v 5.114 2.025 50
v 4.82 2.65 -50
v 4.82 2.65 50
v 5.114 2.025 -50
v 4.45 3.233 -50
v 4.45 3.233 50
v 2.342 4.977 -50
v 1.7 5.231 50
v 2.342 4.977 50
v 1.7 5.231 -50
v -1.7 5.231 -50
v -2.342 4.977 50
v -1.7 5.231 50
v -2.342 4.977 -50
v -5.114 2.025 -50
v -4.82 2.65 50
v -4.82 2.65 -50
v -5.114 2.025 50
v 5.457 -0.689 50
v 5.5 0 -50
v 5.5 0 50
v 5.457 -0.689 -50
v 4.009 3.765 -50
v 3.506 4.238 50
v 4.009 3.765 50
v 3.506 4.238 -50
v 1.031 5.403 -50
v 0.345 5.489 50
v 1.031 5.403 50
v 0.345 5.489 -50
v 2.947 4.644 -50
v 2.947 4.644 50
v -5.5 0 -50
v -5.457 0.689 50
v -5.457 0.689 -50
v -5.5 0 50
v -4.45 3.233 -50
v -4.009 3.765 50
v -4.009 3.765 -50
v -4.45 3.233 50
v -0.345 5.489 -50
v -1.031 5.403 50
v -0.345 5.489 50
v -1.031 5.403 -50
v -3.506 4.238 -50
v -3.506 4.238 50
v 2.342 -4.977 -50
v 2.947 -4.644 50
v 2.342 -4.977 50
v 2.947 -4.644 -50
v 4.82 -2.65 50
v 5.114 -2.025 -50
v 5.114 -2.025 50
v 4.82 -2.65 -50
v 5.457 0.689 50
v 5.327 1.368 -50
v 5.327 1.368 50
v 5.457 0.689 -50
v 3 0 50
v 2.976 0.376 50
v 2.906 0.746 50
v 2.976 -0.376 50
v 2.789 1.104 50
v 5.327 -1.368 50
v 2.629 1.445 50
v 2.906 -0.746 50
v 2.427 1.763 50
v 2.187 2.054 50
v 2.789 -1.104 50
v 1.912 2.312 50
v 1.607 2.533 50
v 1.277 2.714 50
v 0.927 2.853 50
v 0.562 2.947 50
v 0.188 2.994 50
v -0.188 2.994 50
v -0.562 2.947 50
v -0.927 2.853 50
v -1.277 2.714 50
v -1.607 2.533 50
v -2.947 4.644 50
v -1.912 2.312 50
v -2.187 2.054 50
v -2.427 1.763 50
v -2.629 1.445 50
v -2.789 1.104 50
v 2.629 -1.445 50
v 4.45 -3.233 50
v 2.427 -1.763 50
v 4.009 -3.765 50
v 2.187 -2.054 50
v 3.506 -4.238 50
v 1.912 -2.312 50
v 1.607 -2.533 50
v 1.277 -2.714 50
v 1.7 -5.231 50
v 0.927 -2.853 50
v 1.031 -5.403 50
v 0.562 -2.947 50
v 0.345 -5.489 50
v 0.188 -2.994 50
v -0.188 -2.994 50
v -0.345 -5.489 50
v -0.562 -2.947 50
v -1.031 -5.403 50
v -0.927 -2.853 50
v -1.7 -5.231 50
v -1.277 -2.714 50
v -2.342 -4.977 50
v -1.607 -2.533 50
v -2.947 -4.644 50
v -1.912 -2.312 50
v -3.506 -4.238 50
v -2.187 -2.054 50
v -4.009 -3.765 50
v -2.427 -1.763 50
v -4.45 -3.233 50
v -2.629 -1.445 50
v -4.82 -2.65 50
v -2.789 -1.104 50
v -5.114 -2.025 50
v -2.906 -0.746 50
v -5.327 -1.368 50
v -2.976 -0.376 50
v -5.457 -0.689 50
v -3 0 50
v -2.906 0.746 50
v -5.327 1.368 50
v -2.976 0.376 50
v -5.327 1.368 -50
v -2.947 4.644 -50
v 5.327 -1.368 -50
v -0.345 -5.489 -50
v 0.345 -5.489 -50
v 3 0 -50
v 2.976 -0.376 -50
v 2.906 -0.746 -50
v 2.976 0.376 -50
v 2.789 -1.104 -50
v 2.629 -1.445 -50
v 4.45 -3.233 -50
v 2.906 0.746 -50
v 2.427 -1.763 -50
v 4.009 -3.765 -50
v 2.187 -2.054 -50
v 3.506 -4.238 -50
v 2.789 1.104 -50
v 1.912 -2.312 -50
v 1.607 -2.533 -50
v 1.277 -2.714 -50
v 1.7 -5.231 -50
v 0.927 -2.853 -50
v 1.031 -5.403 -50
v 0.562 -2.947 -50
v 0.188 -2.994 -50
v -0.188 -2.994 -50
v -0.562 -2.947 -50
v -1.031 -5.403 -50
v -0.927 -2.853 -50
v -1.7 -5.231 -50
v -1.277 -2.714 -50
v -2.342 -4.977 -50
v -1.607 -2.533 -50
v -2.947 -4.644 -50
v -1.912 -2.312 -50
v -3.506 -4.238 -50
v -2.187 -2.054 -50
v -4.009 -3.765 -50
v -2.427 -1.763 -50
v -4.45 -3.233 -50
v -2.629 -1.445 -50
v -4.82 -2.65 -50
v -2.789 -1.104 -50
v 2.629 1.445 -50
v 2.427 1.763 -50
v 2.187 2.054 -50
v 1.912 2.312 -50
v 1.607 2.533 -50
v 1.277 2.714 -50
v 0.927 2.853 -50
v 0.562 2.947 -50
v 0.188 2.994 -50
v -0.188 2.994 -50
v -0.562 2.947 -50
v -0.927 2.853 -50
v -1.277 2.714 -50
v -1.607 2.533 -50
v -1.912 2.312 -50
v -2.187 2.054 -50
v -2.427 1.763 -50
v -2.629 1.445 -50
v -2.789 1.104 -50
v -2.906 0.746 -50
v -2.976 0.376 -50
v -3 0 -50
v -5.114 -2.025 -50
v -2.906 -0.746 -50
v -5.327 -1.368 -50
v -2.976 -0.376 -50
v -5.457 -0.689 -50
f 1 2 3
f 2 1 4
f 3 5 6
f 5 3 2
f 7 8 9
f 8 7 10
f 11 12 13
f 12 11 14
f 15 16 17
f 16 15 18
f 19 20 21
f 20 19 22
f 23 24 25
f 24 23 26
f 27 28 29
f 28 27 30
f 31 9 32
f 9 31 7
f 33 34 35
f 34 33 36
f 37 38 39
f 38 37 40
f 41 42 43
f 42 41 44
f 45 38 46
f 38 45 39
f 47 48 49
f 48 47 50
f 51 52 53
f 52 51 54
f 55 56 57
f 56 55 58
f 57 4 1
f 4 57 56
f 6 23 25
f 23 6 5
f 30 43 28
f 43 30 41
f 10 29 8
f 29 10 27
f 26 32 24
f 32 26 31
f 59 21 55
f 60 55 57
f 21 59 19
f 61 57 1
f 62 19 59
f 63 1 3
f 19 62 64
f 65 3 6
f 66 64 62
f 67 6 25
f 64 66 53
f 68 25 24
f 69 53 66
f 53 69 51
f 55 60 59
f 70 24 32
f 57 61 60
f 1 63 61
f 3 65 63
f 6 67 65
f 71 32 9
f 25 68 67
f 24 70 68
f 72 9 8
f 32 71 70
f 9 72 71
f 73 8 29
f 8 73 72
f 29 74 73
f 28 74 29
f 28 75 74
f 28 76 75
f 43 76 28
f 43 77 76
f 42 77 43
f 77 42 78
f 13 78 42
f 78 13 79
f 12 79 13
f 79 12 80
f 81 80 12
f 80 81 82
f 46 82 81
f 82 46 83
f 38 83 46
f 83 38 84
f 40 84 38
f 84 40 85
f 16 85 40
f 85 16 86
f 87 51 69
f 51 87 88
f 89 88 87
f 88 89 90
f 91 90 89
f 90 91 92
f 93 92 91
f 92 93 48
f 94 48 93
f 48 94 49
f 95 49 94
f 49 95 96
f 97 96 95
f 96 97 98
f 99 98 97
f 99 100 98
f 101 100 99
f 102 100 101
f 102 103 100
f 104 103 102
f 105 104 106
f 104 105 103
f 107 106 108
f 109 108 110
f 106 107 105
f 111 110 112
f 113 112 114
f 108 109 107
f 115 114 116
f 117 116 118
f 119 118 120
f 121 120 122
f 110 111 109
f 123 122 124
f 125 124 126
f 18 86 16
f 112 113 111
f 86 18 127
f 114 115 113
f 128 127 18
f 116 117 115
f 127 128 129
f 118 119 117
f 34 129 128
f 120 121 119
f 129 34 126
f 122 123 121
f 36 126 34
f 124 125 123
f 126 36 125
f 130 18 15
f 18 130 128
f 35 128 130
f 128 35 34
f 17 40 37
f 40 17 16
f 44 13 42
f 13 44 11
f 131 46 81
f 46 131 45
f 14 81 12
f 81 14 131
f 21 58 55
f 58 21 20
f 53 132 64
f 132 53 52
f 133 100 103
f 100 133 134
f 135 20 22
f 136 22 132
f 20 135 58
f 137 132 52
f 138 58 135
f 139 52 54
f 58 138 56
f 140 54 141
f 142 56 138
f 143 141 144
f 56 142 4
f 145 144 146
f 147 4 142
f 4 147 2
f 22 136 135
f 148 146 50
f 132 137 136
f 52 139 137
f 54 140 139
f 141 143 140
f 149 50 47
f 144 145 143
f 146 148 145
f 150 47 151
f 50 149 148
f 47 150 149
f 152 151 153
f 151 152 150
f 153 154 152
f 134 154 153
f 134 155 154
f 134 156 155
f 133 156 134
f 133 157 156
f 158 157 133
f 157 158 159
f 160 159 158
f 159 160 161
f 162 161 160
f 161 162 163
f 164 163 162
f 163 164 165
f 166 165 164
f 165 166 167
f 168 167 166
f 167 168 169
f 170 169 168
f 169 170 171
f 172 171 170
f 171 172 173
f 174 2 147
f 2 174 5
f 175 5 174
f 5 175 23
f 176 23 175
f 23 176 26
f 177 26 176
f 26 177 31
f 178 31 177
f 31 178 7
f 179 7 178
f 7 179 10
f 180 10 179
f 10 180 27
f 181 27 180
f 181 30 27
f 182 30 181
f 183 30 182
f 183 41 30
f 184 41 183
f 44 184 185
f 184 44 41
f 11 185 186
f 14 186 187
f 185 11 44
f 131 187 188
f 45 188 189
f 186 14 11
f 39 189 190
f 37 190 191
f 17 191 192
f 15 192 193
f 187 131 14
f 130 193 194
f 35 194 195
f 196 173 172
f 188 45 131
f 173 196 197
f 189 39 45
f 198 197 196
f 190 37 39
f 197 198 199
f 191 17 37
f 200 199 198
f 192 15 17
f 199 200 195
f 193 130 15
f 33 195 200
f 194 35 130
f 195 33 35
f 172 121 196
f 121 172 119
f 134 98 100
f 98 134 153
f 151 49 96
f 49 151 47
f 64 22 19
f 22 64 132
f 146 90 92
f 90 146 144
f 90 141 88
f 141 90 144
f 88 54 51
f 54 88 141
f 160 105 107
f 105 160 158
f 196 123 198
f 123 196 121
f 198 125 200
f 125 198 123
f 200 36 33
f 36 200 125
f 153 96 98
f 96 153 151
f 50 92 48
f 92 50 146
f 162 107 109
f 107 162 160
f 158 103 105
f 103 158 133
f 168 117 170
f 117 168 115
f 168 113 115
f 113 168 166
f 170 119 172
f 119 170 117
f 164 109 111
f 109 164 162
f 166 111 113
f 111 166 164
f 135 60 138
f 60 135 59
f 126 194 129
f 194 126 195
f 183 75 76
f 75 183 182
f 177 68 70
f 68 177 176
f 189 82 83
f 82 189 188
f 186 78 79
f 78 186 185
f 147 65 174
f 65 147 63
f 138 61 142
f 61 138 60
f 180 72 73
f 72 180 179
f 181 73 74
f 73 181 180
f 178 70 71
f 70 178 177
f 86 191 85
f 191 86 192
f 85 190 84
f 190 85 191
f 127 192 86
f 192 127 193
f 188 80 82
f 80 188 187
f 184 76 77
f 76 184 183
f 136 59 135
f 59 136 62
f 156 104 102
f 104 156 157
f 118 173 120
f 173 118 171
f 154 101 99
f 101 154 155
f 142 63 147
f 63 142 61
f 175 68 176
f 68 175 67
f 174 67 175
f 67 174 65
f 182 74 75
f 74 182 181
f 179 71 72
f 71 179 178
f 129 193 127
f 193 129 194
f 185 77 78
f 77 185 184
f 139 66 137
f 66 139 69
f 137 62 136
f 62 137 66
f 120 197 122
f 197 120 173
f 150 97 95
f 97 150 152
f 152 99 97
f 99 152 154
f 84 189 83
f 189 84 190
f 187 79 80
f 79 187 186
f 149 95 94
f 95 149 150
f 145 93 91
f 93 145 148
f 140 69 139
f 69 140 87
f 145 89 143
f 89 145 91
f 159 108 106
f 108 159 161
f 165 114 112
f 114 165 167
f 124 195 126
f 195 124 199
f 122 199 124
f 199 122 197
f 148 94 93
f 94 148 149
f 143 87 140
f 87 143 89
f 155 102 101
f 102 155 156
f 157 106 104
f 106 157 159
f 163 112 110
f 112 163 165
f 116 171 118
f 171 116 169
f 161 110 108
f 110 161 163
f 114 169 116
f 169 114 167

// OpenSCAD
$fn = 50;


difference() {
	union() {
		translate(v = [0, 0, -50.0000000000]) {
			cylinder(h = 100, r = 5.5000000000);
		}
	}
	union() {
		translate(v = [0, 0, -100.0000000000]) {
			cylinder(h = 200, r = 3);
		}
	}
}
